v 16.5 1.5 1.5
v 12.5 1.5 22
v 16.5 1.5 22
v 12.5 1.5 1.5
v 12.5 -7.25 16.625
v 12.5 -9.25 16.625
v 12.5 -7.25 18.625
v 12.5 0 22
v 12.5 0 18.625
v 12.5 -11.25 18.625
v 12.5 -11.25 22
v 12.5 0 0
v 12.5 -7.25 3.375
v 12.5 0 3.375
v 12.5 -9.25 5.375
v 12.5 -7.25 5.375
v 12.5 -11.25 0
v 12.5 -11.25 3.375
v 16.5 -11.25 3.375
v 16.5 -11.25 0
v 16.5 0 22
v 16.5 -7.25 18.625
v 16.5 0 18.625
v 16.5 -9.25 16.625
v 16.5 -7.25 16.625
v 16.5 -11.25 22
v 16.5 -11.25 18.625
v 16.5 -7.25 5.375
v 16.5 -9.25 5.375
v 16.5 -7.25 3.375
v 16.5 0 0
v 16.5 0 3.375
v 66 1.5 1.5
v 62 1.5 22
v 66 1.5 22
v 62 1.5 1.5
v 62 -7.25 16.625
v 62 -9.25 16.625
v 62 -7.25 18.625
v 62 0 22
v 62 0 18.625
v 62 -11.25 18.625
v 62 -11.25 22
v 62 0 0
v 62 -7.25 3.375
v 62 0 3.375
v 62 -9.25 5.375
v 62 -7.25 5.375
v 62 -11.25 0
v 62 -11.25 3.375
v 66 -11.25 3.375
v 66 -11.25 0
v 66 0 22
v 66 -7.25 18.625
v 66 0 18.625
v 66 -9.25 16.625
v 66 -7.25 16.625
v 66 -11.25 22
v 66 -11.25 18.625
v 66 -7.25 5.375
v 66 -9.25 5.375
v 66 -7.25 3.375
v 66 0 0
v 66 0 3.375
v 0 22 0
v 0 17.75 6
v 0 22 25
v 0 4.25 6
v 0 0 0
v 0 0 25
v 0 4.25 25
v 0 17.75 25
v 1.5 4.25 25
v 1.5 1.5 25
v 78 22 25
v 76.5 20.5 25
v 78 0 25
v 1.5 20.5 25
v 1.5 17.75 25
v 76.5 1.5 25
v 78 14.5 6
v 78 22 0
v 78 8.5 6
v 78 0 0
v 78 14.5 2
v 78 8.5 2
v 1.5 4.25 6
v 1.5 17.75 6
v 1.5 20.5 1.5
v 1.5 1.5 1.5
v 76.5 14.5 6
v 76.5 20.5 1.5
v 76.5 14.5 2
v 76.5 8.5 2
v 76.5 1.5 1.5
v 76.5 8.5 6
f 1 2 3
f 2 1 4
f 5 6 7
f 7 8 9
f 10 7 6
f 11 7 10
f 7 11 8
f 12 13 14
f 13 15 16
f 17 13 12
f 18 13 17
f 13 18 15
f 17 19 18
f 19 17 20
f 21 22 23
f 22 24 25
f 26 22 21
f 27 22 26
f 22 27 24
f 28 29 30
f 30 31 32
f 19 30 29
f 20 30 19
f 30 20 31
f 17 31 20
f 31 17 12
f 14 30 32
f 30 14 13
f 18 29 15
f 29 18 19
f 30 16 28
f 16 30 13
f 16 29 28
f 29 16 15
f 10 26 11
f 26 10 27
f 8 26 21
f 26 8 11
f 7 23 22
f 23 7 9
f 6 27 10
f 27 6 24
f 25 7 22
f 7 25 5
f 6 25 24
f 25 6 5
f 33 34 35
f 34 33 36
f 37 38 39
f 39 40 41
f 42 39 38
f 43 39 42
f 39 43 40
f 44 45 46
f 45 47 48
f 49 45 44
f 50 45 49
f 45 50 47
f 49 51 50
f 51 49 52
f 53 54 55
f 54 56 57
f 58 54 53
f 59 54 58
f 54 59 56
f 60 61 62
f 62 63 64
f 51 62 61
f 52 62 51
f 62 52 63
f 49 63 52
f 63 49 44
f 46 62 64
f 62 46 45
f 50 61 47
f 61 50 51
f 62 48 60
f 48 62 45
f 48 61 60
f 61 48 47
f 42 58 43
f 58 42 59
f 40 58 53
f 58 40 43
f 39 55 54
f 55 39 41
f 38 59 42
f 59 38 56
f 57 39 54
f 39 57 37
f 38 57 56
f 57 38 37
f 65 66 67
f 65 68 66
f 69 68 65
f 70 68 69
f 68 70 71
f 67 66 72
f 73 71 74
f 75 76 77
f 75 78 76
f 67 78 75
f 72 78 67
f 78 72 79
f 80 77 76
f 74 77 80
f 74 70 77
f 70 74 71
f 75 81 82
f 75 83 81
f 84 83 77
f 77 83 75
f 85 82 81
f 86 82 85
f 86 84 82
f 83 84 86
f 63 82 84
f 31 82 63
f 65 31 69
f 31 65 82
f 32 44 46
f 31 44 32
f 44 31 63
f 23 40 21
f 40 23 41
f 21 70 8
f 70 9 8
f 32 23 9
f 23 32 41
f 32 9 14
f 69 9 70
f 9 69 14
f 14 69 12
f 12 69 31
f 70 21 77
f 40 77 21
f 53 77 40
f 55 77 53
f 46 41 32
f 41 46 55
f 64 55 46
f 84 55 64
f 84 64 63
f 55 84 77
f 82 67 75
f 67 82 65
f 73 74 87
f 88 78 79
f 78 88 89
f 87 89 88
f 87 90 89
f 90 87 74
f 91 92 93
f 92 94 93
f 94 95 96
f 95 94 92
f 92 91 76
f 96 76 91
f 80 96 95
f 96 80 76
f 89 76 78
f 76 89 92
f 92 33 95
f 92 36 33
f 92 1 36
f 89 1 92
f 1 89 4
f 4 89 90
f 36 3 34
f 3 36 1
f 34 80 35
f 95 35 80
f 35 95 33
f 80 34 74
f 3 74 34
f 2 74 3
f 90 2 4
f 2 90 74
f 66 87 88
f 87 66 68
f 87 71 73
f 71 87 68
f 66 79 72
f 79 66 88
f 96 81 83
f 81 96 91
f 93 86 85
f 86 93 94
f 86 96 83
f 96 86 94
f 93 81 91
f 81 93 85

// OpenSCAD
Wall   = 1.5; // Wall thickness
Length = 75+Wall*2; // X axis
Width  = 19+Wall*2; // Y
Height = 25; // Z

//How thick shall the hooks be?
t1=3.375;
//How thick shall the clamp bridge be?
t2=1.5;
//high of the clamp
w1=4;
//depth of the hook
t3=2;
//profile width
l1=15;
//distance from edge to slot
l2=7;
//How much extra space needed to make print fit?
x=0.25;



module hook()
{
	//one leg
	cube([l2+t2+2*t3+x,t1,w1]);

	//the hook
	translate ([l2+t2+x,t1,0]){
		polyhedron ( points = [[0,0,0],[2*t3,0,0],[t3,t3,0],[0,t3,0],[0,0,w1],[2*t3,0,w1],[t3,t3,w1],[0,t3,w1],[0,t3,w1]],
		triangles = [[0,5,1],[5,0,4],[1,6,2],[6,1,5],[2,6,3],[6,7,3],[7,4,0],[0,3,7],[5,4,6],[4,7,6],[0,1,2],[2,3,0]]);
	}
}

translate ([15+Wall,Wall,0]) rotate([90,0,270]) union() {
	//let us do the top cover first
	cube([t2,l1+2*t1+x,w1]);
	//now the first hook
	hook();
	//second hook
	//hook mirrored and moved to the other side
	translate([0,l1+t1+t1+x,0]){
		mirror([0,1,0]){
			hook();}
	}
}

translate ([Length-15+Wall*2,Wall,0]) rotate([90,0,270]) union() {
	//let us do the top cover first
	cube([t2,l1+2*t1+x,w1]);
	//now the first hook
	hook();
	//second hook
	//hook mirrored and moved to the other side
	translate([0,l1+t1+t1+x,0]){
		mirror([0,1,0]){
			hook();}
	}
}

difference(){
  cube([Length,Width,Height]);  
  translate([Wall,Wall,Wall]) {
    cube([Length-(Wall*2),Width-(Wall*2),Height]);
  }
  translate([0,(Width-13.5)/2,2.5+3.5]) {
    cube([Wall, 13.5, 14.5+5]);
  }
  translate([Length-Wall,(Width-5)/2,2]) {
    cube([Wall, 6, 4]);
  }
}
